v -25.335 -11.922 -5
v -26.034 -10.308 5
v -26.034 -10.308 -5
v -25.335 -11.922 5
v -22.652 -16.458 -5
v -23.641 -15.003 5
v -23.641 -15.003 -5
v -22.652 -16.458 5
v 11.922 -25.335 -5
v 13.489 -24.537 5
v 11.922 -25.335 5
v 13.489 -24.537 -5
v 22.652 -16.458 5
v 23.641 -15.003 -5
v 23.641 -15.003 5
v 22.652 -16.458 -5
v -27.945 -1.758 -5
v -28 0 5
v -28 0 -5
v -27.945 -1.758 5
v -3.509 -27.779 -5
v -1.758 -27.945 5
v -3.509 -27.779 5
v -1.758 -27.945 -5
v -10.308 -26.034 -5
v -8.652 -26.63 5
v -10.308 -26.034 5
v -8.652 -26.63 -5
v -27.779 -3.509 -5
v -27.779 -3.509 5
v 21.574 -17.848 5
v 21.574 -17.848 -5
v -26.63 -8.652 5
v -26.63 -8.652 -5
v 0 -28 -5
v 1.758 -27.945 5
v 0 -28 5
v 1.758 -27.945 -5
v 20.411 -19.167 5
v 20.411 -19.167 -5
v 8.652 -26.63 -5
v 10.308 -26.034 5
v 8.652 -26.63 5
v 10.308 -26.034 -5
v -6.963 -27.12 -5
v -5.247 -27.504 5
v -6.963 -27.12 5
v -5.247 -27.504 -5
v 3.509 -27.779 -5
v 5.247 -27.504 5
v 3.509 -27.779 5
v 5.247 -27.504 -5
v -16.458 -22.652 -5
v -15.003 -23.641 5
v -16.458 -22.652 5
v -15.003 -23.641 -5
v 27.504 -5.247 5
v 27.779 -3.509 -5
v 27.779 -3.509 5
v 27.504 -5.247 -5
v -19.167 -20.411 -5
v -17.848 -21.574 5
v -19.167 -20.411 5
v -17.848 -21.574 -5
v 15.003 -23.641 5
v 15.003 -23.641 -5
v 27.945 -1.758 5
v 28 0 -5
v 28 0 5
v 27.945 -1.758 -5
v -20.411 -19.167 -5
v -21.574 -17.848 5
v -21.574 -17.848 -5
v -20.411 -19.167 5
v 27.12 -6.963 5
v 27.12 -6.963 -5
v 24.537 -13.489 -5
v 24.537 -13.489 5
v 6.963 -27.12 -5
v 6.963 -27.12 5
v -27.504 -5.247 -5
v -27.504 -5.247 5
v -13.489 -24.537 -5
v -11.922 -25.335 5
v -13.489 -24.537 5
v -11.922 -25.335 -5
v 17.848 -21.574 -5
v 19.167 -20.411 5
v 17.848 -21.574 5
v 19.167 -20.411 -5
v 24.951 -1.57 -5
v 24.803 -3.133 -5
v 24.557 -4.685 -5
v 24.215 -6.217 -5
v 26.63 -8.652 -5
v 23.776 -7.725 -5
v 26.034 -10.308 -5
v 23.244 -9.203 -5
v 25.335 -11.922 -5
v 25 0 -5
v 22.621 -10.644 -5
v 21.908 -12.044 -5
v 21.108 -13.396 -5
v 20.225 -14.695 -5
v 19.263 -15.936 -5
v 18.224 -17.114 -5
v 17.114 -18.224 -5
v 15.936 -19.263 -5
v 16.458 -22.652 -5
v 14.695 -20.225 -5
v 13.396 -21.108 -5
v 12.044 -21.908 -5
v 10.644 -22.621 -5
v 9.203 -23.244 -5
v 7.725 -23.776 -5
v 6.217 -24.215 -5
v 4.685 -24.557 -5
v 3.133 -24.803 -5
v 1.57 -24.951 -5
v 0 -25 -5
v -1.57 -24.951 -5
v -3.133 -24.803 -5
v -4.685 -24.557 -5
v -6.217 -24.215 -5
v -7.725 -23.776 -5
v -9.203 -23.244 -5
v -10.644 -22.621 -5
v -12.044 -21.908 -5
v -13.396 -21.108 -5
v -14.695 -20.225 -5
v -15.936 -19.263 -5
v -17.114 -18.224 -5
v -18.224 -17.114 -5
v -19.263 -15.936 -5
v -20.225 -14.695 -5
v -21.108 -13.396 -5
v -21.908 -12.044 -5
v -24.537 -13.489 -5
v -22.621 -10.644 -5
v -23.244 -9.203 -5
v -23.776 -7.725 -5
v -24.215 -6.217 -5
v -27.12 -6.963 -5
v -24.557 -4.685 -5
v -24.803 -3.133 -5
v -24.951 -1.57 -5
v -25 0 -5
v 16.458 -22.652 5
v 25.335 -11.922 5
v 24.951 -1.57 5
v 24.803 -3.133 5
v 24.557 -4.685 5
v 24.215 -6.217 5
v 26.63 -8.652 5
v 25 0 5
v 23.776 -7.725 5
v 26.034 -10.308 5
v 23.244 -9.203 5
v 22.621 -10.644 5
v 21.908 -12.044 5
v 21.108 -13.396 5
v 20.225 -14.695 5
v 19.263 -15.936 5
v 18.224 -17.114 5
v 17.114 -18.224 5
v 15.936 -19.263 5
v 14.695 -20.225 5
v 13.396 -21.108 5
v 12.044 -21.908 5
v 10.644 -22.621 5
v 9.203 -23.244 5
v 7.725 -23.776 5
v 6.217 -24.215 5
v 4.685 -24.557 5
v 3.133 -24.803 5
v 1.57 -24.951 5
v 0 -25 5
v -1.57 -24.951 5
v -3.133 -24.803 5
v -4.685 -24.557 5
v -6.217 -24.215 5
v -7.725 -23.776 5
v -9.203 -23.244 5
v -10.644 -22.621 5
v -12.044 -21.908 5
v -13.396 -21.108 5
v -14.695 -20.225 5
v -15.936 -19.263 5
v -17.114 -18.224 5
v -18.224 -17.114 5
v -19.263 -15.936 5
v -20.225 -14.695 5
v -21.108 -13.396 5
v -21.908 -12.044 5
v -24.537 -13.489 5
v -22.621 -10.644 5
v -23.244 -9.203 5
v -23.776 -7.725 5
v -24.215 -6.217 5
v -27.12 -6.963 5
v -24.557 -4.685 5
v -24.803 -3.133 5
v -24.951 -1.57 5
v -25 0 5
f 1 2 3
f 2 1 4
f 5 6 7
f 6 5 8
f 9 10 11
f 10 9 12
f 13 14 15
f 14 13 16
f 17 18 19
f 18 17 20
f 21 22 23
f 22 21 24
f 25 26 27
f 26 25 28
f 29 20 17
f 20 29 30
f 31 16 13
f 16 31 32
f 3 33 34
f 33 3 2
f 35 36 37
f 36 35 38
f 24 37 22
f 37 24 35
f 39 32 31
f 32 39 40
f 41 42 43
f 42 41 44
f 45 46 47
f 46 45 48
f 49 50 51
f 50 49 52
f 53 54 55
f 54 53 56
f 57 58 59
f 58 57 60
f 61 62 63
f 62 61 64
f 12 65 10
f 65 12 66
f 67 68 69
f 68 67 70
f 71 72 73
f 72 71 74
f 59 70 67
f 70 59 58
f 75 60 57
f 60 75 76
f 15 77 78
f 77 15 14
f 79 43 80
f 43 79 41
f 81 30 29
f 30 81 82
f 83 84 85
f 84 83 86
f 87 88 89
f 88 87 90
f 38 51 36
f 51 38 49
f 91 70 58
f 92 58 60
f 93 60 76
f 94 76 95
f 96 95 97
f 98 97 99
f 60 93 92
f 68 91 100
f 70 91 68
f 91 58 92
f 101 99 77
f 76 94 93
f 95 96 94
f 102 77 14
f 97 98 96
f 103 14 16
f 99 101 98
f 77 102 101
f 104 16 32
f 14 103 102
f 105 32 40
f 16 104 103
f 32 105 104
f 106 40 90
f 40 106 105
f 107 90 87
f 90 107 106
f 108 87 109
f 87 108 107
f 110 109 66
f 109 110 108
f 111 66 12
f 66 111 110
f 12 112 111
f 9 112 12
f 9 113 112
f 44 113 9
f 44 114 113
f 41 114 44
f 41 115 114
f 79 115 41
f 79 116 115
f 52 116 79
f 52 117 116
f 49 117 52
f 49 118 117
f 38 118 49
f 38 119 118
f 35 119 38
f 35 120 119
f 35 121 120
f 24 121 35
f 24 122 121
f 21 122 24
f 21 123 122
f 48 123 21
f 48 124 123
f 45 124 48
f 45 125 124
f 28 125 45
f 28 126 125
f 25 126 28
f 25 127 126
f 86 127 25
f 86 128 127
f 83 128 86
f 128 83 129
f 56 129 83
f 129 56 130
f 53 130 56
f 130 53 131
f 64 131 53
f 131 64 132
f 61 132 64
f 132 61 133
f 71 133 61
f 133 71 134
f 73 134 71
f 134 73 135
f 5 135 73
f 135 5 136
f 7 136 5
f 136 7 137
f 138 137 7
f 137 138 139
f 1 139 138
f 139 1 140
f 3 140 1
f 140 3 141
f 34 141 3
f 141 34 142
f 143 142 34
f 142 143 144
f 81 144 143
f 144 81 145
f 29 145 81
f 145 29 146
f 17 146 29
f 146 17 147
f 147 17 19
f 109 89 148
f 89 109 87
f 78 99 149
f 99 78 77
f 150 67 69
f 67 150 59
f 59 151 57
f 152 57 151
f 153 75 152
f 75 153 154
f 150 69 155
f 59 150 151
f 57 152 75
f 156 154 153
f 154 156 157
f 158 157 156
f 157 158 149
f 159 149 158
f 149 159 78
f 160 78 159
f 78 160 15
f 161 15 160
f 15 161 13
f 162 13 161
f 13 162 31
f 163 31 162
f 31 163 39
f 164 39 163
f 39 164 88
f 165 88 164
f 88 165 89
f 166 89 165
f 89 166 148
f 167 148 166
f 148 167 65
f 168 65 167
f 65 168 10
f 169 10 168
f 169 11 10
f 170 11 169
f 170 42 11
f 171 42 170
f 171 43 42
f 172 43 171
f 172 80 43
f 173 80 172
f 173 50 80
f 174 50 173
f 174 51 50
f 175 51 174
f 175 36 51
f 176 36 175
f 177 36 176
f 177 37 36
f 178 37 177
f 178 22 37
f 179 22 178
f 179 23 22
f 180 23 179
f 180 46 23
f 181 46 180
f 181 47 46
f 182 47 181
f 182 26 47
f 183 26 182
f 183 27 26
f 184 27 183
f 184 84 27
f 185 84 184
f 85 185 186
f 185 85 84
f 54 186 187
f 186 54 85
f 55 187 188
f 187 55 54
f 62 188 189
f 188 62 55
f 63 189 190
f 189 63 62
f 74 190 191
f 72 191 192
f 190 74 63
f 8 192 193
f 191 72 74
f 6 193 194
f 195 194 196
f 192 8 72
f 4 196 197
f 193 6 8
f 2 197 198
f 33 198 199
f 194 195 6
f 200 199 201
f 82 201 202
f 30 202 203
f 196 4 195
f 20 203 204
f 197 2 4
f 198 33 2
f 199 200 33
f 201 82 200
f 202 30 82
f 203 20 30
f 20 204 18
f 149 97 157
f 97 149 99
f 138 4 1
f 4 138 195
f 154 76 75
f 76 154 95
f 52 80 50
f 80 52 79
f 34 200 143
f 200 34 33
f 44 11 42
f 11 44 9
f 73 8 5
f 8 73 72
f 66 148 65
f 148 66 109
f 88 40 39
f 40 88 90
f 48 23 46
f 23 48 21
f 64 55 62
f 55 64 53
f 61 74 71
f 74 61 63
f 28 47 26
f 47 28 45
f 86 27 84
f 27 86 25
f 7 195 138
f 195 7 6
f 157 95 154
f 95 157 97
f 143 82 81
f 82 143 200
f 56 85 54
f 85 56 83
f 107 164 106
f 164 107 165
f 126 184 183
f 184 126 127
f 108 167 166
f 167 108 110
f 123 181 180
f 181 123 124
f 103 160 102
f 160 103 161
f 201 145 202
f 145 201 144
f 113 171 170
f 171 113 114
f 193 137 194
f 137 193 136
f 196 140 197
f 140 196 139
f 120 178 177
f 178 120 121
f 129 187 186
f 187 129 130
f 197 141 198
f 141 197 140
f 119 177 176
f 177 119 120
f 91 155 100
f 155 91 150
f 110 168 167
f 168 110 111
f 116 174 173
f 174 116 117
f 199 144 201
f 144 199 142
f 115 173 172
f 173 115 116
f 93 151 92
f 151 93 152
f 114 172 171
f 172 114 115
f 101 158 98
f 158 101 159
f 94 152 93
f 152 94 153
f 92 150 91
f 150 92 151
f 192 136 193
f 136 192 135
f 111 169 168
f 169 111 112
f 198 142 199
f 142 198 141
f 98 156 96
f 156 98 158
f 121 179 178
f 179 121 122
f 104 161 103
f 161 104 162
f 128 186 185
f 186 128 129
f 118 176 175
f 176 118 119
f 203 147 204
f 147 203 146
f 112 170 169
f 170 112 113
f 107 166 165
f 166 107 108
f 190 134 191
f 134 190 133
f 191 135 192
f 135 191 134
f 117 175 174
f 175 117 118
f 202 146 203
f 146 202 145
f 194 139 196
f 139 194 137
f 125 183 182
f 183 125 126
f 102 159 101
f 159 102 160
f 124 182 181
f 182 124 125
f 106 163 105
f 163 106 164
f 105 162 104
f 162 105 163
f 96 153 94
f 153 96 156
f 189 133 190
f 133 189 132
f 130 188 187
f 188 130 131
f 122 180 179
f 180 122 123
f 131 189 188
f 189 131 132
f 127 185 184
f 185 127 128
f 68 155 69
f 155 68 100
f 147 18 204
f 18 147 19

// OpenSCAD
$fn = 100;
difference()
{
  cylinder(h = 10, r = 28, center = true);
  cylinder(h = 11, r = 25, center = true);
  #union()
  {
    translate(v = [0, 50, 0])
    {
      cube(size = [100, 100, 40], center = true);
    }
  }
}
